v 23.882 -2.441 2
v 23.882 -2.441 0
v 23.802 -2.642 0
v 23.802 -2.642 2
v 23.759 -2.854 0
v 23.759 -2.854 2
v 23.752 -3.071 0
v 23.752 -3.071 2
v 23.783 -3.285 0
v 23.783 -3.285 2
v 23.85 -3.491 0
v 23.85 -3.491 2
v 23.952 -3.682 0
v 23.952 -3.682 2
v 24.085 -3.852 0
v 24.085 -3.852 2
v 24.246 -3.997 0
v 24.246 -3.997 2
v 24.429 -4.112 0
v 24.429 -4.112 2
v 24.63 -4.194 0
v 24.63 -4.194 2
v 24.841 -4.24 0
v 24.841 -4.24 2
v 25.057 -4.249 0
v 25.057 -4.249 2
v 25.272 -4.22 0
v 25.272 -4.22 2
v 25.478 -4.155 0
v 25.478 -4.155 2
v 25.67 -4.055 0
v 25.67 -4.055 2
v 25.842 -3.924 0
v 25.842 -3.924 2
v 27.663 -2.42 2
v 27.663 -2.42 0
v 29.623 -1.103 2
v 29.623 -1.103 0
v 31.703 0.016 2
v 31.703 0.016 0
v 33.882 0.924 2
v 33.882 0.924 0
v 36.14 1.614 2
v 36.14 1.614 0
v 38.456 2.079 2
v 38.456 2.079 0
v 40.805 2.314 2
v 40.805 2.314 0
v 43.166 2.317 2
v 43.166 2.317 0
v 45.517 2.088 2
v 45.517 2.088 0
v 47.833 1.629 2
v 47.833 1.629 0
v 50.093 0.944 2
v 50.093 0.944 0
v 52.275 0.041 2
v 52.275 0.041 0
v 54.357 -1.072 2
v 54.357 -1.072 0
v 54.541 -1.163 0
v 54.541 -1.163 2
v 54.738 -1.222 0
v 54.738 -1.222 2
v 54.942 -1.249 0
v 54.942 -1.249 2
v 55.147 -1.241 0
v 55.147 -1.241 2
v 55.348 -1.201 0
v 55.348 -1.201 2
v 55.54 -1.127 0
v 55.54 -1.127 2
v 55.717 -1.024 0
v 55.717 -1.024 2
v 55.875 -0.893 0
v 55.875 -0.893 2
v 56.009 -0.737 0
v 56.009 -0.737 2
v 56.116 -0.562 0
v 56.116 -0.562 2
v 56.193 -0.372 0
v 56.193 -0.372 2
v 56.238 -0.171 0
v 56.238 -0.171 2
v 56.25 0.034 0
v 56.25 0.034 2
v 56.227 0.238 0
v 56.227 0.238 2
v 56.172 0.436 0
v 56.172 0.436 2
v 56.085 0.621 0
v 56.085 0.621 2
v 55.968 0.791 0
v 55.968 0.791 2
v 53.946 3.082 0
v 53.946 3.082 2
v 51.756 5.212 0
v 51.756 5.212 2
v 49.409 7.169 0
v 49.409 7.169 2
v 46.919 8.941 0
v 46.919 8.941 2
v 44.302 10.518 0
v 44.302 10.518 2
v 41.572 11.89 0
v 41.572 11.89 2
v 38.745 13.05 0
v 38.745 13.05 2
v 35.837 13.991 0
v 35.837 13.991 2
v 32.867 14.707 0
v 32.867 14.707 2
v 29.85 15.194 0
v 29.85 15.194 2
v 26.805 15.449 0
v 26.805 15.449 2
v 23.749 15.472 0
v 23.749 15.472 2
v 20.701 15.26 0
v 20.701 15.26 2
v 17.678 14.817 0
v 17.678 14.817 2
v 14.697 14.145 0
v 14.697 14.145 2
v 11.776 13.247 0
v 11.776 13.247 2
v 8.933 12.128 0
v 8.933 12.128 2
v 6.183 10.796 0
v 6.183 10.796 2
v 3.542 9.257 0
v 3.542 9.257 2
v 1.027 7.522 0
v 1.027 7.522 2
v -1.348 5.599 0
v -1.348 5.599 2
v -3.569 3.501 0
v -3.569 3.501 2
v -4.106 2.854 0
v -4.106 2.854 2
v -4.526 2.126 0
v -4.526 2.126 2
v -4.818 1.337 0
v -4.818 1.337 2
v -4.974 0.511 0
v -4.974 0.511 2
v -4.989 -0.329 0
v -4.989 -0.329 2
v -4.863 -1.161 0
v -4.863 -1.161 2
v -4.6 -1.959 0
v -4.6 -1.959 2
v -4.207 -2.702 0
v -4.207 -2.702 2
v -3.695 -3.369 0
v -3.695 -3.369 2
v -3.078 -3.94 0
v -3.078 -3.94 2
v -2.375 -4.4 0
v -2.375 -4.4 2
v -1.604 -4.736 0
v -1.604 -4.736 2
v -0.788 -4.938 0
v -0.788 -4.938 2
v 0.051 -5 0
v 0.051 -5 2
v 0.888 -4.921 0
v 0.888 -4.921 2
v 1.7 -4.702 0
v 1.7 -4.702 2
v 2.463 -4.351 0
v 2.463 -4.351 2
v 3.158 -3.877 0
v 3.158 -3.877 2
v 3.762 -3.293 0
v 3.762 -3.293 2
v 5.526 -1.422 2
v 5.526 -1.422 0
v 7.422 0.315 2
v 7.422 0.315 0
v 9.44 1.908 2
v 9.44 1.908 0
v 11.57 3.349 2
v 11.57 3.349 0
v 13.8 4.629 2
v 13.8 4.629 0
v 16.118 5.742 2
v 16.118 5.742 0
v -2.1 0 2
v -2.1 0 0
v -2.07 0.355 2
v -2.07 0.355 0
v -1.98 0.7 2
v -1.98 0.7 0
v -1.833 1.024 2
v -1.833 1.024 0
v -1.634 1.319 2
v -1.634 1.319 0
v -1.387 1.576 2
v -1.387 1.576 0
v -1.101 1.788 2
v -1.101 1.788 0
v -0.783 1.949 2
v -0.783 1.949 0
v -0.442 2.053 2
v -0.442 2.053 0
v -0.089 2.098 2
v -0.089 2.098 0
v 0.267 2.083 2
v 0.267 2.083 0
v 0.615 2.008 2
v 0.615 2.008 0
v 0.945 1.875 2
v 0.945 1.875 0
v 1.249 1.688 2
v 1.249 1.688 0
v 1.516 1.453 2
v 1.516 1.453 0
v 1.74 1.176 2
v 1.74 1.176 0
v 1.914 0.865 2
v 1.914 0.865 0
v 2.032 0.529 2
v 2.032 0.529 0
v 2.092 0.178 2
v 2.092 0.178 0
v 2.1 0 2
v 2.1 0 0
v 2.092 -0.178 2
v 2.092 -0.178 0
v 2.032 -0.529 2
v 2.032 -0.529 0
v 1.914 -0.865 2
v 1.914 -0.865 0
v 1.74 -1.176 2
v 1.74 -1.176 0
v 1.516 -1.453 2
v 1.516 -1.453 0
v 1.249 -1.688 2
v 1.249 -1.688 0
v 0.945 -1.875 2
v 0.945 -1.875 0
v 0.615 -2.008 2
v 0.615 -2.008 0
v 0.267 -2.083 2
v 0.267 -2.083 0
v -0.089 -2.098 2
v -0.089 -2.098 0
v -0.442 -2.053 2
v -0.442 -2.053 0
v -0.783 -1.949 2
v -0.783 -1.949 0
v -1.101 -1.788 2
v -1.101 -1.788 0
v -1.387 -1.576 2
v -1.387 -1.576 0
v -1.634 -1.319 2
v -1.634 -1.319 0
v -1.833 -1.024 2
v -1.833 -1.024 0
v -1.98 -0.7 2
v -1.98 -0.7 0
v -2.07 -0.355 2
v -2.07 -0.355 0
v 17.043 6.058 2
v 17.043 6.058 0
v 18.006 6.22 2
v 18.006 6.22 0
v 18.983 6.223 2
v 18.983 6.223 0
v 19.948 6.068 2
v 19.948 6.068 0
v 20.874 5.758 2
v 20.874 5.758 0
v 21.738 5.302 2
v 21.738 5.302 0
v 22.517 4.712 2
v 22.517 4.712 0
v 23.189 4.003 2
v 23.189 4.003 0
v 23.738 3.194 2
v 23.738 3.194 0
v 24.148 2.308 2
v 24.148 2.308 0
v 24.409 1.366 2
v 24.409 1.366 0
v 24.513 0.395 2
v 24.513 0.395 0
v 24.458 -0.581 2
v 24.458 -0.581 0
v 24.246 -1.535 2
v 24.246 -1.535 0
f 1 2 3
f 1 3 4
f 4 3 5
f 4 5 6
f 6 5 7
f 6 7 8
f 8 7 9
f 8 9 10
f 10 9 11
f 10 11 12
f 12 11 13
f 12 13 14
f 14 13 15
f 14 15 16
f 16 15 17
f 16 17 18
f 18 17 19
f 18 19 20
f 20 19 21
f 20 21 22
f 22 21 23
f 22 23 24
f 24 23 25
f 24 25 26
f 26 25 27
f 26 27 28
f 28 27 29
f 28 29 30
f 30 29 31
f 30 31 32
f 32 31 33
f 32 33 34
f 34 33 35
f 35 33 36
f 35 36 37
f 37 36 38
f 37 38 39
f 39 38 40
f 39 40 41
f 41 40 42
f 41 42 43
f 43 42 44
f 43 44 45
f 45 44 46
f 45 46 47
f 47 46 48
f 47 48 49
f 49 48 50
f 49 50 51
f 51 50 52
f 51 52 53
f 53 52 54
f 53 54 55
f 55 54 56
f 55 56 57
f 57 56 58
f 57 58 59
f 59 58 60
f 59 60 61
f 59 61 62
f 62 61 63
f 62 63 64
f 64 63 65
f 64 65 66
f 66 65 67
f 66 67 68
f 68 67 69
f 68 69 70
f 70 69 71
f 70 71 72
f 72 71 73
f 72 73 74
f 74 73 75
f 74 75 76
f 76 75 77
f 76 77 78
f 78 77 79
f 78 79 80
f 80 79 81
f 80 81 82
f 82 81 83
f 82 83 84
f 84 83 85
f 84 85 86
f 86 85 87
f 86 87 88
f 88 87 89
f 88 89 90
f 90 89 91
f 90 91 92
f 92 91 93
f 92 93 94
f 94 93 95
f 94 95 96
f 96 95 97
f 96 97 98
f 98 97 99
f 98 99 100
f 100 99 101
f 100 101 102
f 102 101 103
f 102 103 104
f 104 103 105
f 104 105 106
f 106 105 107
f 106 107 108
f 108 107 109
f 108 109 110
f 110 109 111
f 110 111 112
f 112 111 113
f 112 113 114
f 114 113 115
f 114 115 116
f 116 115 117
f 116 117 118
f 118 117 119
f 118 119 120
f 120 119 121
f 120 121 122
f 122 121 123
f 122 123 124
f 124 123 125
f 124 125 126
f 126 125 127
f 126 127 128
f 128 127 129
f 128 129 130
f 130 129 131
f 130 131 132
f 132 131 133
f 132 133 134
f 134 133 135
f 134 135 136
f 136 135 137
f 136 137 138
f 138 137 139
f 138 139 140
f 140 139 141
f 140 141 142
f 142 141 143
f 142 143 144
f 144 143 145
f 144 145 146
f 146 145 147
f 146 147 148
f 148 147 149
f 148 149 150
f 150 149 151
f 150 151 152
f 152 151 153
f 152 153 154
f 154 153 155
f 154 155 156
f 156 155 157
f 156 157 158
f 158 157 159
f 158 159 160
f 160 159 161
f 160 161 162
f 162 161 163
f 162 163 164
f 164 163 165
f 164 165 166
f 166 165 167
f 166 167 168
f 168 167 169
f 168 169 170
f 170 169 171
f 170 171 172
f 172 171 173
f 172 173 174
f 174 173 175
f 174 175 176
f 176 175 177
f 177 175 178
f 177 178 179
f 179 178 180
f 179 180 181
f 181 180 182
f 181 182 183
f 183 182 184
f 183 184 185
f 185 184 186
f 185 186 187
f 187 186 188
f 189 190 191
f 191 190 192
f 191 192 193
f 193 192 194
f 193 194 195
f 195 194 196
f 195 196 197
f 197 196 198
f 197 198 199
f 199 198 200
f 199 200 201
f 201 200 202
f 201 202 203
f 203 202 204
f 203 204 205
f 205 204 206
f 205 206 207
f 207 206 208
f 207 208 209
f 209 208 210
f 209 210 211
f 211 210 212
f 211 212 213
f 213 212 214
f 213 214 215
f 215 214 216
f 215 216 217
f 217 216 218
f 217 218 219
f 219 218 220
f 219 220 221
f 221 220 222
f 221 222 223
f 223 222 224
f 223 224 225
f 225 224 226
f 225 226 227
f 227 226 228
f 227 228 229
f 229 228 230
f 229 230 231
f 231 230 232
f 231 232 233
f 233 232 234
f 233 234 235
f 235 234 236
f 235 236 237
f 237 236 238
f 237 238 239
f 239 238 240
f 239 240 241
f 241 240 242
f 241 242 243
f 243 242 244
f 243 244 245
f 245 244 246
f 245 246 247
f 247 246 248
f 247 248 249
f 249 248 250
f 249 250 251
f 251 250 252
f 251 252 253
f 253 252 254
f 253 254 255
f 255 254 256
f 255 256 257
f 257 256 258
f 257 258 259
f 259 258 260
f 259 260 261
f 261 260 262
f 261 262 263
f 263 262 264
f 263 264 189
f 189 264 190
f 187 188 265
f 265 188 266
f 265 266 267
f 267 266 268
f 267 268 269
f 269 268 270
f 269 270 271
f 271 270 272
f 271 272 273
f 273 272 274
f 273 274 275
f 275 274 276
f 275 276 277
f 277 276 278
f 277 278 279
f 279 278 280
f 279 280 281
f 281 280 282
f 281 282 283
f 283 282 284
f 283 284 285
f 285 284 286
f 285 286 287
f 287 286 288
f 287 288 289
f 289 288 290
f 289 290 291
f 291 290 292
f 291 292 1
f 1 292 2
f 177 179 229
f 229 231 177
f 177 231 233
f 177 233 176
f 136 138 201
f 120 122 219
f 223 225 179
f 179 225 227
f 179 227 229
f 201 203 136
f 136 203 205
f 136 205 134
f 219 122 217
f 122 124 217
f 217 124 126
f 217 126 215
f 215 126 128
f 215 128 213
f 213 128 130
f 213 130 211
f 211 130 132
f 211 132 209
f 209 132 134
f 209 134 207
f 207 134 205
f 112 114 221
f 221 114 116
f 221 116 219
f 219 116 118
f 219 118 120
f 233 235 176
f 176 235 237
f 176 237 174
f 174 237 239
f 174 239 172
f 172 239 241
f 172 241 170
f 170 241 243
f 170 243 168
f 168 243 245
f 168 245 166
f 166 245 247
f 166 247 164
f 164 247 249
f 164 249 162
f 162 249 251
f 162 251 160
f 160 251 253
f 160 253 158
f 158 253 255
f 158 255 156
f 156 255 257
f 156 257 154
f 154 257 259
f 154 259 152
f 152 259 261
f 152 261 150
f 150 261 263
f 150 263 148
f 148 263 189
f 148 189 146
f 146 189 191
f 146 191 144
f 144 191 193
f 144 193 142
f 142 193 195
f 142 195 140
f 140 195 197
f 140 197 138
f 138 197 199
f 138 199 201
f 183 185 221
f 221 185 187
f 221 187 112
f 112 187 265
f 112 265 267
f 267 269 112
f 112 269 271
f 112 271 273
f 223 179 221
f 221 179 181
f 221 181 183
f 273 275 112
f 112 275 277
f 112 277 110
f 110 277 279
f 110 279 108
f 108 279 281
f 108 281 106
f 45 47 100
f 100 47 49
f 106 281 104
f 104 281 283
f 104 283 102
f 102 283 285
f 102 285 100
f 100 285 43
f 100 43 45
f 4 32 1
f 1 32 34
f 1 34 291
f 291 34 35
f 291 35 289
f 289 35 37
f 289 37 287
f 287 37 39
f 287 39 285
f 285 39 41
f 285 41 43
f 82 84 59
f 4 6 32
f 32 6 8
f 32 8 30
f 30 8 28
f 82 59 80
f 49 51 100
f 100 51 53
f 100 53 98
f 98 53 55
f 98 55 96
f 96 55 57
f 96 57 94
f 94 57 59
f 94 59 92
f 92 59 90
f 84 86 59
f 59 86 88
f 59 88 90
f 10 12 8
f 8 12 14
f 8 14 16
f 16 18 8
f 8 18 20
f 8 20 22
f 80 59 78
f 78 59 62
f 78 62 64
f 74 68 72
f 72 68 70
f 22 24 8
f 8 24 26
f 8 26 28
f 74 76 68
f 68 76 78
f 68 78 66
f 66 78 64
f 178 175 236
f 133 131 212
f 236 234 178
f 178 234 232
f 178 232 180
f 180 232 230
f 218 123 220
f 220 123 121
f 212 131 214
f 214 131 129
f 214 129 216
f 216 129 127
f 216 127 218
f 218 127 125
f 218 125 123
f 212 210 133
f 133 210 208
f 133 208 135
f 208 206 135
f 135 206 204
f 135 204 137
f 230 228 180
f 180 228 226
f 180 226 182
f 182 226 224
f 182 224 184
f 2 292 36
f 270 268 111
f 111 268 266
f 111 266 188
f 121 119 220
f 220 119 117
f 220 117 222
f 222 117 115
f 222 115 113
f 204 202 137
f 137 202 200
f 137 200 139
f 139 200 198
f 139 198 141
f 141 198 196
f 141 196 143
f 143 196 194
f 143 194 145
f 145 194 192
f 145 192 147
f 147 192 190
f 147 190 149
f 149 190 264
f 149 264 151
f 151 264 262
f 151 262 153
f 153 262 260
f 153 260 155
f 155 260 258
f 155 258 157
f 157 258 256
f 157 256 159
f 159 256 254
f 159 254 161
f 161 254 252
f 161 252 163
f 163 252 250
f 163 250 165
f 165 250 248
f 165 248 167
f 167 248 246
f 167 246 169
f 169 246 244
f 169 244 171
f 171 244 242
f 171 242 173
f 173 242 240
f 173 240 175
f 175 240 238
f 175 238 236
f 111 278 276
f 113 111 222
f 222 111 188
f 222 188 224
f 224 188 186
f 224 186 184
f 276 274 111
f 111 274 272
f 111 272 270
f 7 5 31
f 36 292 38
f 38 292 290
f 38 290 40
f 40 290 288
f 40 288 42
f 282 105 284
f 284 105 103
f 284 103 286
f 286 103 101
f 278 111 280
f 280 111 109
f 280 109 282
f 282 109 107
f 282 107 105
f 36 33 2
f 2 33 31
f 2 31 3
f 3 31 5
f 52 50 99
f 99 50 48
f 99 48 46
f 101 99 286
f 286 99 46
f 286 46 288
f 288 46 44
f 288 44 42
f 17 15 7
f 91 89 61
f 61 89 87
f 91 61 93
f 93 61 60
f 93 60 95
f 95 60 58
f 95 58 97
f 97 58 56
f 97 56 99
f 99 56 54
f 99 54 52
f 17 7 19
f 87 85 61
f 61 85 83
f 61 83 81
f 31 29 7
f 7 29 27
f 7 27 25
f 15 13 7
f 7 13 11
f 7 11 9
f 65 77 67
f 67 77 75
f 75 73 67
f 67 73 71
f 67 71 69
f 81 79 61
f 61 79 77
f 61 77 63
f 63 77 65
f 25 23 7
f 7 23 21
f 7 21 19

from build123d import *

# Parameters (mm, degrees)
SKETCH1_R           = 2.1
BOSS_EXTRUDE1_DEPTH = 2


with BuildPart() as part:
    # Sketch1 → Boss-Extrude1 (new body)
    with BuildSketch(Plane.XY):
        with BuildLine():
            ThreePointArc((23.881885124, -2.44114481), (24.246083691, -3.99705075), (25.842354675, -3.923546751))
            ThreePointArc((25.842354675, -3.923546751), (39.627475181, 2.225248194), (54.35720616, -1.072061603))
            ThreePointArc((54.35720616, -1.072061603), (55.945448574, -0.81769615), (55.968200147, 0.79062537))
            ThreePointArc((55.968200147, 0.79062537), (26.805089731, 15.449219208), (-3.569399351, 3.501340925))
            ThreePointArc((-3.569399351, 3.501340925), (-3.398562383, -3.667393315), (3.762428977, -3.293042391))
            ThreePointArc((3.762428977, -3.293042391), (9.440329247, 1.908120602), (16.118141008, 5.741849601))
            ThreePointArc((16.118141008, 5.741849601), (22.86761221, 4.371031998), (23.881885124, -2.44114481))
        make_face()
        Circle(SKETCH1_R, mode=Mode.SUBTRACT)
    extrude(amount=BOSS_EXTRUDE1_DEPTH)


solid = part.part
